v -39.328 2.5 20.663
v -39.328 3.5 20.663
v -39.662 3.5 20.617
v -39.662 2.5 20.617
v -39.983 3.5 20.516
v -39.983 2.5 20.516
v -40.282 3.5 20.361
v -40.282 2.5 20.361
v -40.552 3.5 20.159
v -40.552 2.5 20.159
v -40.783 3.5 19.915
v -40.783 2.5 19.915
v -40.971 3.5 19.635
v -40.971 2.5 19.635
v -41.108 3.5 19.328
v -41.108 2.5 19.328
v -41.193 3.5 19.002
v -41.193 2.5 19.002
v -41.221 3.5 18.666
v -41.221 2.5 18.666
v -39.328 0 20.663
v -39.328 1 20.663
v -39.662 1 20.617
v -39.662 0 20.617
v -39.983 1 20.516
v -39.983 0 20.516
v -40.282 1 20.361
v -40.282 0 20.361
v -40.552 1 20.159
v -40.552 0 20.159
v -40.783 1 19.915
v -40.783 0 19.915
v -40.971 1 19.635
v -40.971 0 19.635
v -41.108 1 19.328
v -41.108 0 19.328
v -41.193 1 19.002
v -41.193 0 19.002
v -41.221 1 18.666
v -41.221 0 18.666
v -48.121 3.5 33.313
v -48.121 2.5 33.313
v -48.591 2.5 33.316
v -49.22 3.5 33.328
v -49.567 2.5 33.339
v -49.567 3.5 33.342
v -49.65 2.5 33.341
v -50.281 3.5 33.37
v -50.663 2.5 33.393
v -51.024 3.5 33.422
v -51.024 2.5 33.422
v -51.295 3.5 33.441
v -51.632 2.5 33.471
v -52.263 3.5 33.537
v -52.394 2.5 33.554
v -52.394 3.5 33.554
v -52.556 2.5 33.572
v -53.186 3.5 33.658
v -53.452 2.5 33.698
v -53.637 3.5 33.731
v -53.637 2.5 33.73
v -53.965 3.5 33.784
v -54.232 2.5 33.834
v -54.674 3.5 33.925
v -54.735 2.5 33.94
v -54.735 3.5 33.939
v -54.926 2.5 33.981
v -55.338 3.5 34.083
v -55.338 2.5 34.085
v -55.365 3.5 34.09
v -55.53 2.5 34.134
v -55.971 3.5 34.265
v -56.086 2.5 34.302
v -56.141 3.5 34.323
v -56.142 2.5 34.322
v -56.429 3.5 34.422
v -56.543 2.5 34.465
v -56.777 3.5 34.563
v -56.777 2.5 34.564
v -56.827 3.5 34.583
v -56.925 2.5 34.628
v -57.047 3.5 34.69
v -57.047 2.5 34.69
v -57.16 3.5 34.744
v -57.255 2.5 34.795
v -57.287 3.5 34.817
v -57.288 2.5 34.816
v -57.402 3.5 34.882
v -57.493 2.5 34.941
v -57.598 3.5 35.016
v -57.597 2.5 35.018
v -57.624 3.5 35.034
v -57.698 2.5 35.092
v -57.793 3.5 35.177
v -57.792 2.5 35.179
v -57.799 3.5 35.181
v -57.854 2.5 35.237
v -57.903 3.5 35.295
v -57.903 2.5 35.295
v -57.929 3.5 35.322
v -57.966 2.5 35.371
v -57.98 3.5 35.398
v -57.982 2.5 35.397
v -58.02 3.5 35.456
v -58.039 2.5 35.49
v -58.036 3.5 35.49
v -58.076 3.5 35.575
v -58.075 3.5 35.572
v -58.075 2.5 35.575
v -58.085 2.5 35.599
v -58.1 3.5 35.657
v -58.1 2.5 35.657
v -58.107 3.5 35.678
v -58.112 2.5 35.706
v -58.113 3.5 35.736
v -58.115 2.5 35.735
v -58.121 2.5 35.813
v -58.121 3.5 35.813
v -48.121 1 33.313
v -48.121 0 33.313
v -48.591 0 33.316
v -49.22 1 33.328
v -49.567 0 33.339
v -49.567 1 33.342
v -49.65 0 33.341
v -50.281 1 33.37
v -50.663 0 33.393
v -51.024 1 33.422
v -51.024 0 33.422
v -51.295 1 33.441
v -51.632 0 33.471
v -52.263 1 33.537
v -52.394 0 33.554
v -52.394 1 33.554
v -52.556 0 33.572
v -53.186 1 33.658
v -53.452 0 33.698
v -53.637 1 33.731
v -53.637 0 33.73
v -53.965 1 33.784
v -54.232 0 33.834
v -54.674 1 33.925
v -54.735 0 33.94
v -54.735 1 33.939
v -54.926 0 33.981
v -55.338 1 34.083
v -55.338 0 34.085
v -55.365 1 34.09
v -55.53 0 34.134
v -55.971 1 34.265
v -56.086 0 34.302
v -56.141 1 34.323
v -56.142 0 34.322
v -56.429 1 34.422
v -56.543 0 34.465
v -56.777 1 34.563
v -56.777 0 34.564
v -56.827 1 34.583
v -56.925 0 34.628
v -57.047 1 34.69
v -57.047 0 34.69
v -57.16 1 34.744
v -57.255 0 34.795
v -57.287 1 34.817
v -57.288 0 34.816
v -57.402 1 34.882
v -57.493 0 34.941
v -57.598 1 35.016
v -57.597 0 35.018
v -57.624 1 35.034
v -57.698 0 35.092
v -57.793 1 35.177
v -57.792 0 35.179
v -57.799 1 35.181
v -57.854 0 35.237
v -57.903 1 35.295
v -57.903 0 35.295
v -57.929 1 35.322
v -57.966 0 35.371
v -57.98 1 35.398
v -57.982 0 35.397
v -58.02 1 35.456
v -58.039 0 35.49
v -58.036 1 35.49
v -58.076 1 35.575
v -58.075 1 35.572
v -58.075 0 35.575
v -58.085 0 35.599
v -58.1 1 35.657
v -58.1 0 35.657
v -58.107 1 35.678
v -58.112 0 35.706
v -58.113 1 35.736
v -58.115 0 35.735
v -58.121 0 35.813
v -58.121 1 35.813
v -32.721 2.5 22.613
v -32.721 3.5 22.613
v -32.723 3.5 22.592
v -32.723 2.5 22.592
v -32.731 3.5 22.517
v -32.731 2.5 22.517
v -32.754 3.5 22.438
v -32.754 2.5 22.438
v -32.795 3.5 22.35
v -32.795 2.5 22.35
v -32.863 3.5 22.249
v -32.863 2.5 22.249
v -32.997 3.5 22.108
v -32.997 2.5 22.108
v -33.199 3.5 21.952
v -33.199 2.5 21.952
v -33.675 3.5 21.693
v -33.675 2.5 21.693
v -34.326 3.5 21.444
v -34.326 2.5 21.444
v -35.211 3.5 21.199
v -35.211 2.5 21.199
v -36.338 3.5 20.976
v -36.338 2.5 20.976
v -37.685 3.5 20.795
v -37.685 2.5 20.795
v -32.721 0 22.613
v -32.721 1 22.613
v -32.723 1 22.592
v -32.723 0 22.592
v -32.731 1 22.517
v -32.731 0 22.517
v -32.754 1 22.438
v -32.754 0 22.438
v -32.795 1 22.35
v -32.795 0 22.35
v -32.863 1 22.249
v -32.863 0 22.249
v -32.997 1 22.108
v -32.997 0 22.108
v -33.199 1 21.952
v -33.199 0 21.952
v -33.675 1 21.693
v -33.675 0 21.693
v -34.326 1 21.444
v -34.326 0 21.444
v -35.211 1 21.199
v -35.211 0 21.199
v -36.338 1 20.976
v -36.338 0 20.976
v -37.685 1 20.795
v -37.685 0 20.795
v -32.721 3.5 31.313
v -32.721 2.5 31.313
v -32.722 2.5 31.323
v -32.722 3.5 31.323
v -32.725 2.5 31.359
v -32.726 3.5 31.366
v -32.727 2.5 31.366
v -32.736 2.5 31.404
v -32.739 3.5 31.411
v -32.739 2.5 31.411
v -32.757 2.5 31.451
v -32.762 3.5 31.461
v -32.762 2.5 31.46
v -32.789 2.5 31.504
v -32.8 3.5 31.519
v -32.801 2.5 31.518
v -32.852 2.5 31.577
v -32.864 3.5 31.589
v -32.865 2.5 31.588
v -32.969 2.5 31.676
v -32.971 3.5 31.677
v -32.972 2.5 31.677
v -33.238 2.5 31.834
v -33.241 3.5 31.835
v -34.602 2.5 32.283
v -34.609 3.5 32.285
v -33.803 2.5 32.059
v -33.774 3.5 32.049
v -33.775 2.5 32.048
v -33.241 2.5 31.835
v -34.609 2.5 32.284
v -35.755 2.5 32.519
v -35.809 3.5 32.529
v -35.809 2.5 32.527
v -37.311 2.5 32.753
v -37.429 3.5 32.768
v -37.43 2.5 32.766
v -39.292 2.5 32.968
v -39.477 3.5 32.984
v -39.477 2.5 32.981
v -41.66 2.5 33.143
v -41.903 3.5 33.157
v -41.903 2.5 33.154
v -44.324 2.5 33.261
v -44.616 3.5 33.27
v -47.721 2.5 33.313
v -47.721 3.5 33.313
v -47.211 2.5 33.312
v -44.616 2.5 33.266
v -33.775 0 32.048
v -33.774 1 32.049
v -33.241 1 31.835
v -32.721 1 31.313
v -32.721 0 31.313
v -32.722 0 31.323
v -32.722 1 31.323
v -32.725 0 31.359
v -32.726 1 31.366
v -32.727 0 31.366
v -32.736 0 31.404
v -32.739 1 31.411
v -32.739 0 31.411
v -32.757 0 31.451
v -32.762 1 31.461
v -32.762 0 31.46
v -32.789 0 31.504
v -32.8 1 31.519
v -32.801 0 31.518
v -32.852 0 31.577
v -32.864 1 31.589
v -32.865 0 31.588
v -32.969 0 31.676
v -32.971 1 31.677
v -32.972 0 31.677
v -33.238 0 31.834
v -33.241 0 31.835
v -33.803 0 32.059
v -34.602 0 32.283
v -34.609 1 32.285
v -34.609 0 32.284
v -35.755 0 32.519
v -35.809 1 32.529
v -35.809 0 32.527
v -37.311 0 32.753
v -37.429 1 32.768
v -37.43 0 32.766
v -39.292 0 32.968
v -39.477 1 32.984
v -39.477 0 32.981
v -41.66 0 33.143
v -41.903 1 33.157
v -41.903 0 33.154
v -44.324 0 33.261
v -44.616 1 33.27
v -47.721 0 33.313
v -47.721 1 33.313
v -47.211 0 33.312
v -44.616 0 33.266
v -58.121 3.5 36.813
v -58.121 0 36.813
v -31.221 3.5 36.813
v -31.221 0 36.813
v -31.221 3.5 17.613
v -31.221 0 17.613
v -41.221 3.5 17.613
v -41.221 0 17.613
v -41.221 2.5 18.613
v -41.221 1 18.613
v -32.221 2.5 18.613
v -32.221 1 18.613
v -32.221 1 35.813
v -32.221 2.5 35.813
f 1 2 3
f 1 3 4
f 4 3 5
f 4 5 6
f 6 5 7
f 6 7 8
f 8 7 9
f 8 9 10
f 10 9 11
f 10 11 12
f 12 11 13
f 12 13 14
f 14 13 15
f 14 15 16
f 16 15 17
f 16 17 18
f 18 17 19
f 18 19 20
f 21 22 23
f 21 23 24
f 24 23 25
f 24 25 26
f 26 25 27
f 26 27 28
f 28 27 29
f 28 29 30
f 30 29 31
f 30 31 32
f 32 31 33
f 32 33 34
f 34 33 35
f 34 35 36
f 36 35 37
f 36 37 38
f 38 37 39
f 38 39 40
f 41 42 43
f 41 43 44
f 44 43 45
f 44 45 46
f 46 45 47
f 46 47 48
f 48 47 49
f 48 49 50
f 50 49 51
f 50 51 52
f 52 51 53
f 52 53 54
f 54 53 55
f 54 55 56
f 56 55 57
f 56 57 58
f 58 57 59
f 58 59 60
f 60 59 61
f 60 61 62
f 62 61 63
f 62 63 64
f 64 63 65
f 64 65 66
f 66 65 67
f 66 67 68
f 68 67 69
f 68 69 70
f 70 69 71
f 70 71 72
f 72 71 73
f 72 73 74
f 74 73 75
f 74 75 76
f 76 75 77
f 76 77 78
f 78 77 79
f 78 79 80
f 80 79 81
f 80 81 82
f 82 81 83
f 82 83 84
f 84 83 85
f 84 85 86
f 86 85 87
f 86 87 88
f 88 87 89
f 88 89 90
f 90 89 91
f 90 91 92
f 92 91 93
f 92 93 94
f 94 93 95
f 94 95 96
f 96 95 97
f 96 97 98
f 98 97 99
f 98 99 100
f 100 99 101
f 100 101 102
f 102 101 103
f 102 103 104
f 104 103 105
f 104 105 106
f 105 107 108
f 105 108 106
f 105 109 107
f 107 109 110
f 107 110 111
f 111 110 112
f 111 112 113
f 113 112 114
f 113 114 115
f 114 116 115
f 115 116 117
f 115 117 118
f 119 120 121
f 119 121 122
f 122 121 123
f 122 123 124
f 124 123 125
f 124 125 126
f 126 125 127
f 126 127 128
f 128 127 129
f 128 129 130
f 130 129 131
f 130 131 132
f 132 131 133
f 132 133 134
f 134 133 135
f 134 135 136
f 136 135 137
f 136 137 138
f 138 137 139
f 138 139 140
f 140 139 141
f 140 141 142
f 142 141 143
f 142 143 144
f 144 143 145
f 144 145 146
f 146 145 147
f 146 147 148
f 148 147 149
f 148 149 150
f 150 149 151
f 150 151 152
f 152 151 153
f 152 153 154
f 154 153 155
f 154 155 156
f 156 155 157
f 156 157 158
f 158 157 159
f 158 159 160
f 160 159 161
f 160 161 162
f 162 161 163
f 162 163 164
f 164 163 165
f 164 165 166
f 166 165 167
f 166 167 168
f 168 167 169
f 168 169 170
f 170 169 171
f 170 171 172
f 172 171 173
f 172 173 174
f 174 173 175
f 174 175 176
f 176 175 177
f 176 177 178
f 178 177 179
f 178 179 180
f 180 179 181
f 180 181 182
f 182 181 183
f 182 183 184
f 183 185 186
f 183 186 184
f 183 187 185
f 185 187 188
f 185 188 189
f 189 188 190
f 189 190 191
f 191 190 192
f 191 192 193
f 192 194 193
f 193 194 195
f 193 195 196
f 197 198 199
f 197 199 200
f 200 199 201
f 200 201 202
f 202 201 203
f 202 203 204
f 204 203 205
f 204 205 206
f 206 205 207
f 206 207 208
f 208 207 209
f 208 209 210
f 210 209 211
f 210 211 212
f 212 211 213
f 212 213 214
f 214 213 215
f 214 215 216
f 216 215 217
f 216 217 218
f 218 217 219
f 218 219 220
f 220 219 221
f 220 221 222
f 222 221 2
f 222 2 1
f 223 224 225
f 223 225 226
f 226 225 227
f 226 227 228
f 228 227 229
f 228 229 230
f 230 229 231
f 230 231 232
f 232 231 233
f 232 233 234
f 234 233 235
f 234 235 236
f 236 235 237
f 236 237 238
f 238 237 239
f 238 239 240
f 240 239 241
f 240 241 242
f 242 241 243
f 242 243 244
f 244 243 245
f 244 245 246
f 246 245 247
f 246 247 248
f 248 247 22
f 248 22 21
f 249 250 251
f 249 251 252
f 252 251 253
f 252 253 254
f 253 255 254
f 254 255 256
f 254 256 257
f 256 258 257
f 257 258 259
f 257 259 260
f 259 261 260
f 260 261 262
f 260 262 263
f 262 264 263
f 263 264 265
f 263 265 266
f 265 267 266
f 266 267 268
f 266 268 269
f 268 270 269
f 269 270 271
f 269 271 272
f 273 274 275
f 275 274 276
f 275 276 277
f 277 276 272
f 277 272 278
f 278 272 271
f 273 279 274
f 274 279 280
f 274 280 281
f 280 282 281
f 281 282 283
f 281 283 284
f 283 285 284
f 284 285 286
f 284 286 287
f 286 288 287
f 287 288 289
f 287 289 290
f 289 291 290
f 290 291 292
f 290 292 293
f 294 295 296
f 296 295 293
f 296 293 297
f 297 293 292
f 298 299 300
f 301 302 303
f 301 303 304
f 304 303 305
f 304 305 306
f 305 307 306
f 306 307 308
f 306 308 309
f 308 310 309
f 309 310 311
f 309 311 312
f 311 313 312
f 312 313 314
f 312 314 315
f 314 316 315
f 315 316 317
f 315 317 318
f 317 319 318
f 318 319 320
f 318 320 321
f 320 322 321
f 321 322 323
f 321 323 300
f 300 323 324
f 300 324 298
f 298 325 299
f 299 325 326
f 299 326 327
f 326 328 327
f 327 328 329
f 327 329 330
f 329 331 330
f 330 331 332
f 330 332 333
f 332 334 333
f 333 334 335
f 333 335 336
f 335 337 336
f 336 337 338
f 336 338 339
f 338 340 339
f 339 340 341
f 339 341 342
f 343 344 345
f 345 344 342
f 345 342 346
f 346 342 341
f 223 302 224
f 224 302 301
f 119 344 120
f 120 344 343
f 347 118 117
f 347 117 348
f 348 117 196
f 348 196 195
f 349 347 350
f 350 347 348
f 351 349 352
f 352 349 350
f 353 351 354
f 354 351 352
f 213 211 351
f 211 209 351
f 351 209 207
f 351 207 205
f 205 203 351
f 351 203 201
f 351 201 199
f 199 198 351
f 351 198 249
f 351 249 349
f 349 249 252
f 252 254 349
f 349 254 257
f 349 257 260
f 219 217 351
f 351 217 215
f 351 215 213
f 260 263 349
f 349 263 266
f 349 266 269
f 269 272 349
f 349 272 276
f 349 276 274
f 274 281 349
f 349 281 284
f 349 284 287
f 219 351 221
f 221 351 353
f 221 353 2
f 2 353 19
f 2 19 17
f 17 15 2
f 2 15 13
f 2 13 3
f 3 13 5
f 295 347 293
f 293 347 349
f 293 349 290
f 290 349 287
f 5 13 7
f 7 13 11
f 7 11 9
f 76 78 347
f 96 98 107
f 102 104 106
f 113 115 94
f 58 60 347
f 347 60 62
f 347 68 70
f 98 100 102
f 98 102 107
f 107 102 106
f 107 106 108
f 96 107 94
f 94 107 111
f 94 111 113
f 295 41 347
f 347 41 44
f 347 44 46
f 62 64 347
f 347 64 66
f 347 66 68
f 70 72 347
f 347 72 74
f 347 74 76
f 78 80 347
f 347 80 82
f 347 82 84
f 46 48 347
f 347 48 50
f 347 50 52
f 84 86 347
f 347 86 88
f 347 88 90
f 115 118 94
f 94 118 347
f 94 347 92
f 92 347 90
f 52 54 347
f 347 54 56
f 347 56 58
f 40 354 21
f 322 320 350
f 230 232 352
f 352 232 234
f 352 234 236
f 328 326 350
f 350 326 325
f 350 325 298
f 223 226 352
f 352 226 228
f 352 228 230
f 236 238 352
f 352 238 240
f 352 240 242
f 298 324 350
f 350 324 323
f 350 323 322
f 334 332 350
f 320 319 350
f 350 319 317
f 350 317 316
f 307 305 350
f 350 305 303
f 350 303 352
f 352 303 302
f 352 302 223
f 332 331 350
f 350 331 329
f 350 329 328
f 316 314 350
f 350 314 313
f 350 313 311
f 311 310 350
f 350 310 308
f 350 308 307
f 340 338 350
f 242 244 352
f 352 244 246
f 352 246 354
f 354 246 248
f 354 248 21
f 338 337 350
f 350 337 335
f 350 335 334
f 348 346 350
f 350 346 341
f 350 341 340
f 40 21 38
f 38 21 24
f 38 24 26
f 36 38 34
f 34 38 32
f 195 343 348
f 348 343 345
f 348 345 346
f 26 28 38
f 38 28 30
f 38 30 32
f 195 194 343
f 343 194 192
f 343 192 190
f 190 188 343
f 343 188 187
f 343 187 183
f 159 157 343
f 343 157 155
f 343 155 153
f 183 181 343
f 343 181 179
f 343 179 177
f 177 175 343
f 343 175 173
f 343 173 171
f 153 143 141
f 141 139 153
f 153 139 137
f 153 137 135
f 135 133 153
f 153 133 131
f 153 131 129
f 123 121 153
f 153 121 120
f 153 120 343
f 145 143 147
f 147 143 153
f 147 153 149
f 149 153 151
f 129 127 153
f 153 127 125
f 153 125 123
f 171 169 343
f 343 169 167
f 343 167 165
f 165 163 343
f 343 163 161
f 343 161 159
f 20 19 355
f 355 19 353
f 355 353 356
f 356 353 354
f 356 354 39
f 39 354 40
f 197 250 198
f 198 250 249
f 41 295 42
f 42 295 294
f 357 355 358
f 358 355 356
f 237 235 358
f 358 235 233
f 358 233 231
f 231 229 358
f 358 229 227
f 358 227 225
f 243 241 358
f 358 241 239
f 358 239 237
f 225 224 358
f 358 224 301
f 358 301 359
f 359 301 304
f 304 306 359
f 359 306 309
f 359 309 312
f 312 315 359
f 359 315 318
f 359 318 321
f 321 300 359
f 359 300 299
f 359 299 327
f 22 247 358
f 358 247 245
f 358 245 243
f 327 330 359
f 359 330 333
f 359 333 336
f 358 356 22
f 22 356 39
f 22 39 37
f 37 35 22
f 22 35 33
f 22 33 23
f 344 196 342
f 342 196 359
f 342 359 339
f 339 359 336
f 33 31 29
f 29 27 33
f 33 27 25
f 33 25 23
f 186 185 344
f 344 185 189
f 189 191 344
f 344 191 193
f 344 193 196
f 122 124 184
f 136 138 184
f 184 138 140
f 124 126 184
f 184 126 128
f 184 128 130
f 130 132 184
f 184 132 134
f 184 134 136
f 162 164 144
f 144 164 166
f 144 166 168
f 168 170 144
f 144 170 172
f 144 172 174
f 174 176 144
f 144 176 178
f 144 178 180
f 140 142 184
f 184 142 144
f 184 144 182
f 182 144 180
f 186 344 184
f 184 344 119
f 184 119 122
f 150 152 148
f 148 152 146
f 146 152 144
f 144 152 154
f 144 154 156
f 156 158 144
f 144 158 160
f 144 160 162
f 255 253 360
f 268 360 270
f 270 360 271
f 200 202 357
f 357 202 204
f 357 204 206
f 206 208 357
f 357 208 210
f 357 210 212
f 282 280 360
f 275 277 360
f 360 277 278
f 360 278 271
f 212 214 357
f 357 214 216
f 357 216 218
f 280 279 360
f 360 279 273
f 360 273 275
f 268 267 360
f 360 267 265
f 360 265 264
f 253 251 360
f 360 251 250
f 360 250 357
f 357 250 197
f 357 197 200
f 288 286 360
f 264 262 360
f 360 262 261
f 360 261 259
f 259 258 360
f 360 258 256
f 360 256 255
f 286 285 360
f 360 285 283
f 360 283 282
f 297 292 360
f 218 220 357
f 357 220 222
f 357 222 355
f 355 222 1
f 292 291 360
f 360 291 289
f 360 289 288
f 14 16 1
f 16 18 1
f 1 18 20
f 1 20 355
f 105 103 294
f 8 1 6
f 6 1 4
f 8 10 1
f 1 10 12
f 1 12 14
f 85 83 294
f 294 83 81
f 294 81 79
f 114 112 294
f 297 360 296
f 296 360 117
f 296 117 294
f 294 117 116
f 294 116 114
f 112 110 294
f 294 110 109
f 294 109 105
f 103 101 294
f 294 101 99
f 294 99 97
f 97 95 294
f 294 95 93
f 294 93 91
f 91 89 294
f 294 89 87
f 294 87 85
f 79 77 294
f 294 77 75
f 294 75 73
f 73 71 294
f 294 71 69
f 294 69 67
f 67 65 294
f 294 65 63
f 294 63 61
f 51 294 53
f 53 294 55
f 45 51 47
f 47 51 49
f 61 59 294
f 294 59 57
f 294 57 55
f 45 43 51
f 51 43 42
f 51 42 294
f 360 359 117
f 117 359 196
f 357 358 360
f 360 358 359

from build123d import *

# Parameters (mm, degrees)
SKETCH1_W           = 26.9
SKETCH1_H           = 19.2
BOSS_EXTRUDE1_DEPTH = 3.5
CUT_EXTRUDE3_DEPTH  = 3.5
SKETCH4_W           = 17.2
SKETCH4_H           = 1.5
CUT_EXTRUDE4_DEPTH  = 25.9
FILLET1_DEPTH       = 1
FILLET2_START       = 2.5
FILLET2_DEPTH       = 1
FILLET3_SIZE        = 8.5
FILLET3_SIZE_2      = 2
FILLET4_START       = 2.5
FILLET4_DEPTH       = 1
FILLET6_SIZE        = 10
FILLET6_SIZE_2      = 2.5
FILLET7_SIZE        = 2.5
FILLET7_SIZE_2      = 10
FILLET8_R           = 2
FILLET9_R           = 2


with BuildPart() as part:
    # Sketch1 → Boss-Extrude1 (new body)
    with BuildSketch(Plane(origin=(0, 0, 0), x_dir=(1, 0, 0), z_dir=(0, 1, 0))):
        with Locations((-44.670982611, -27.213166741)):
            Rectangle(SKETCH1_W, SKETCH1_H)
    extrude(amount=BOSS_EXTRUDE1_DEPTH)

    # Sketch2 → Cut-Extrude3 (cut)
    with BuildSketch(Plane(origin=(0, 3.5, 0), x_dir=(1, 0, 0), z_dir=(0, 1, 0))):
        Polygon((-58.120982611, -33.313166741), (-32.720982611, -33.313166741), (-32.720982611, -20.613166741), (-41.220982611, -20.613166741), (-41.220982611, -17.613166741), (-58.120982611, -17.613166741), align=None)
    extrude(amount=-CUT_EXTRUDE3_DEPTH, mode=Mode.SUBTRACT)

    # Sketch4 → Cut-Extrude4 (cut)
    with BuildSketch(Plane.ZY.offset(58.120982611)):
        with Locations((27.213166741, 1.75)):
            Rectangle(SKETCH4_W, SKETCH4_H)
    extrude(amount=-CUT_EXTRUDE4_DEPTH, mode=Mode.SUBTRACT)

    # Fillet1: read off the stored shape, not the designer's step
    # Fillet1 outline → Fillet1 (add)
    with BuildSketch(Plane(origin=(0, 0, 0), x_dir=(1, 0, 0), z_dir=(0, 1, 0))):
        with BuildLine():
            add(Edge.make_bspline(
                [(-47.720982611, -33.313166741), (-32.720982611, -33.313166741), (-32.720982611, -31.313166741)],
                knots=[0, 0, 0, 1, 1, 1], degree=2, weights=[1, 0.707106781, 1]))
            Line((-47.720982611, -33.313166741), (-32.720982611, -33.313166741))
            Line((-32.720982611, -33.313166741), (-32.720982611, -31.313166741))
        make_face()
    extrude(amount=FILLET1_DEPTH)

    # Fillet2: read off the stored shape, not the designer's step
    # Fillet2 outline → Fillet2 (add)
    with BuildSketch(Plane(origin=(0, 0, 0), x_dir=(1, 0, 0), z_dir=(0, 1, 0)).offset(FILLET2_START)):
        with BuildLine():
            add(Edge.make_bspline(
                [(-47.720982611, -33.313166741), (-32.720982611, -33.313166741), (-32.720982611, -31.313166741)],
                knots=[0, 0, 0, 1, 1, 1], degree=2, weights=[1, 0.707106781, 1]))
            Line((-47.720982611, -33.313166741), (-32.720982611, -33.313166741))
            Line((-32.720982611, -33.313166741), (-32.720982611, -31.313166741))
        make_face()
    extrude(amount=FILLET2_DEPTH)

    # Fillet3
    # a fillet whose section is not a circle: 8.5, 2 mm, written as the material it adds along each edge
    with BuildSketch(Plane(origin=(-32.720982611, 1, 20.613166741), x_dir=(-1, 0, 0), z_dir=(0, -1, 0))) as fillet3_piece_1:
        with BuildLine():
            Bezier((FILLET3_SIZE, 0), (0, 0), (0, -FILLET3_SIZE_2), weights=[1, 0.707106781, 1])
            Line((0, -FILLET3_SIZE_2), (0, 0))
            Line((0, 0), (FILLET3_SIZE, 0))
        make_face()
    extrude(amount=1)

    # Fillet4: read off the stored shape, not the designer's step
    # Fillet4 outline → Fillet4 (add)
    with BuildSketch(Plane(origin=(0, 0, 0), x_dir=(1, 0, 0), z_dir=(0, 1, 0)).offset(FILLET4_START)):
        with BuildLine():
            Line((-32.720982611, -20.613166741), (-41.220982611, -20.613166741))
            add(Edge.make_bspline(
                [(-41.220982611, -20.613166741), (-32.720982611, -20.613166741), (-32.720982611, -22.613166741)],
                knots=[0, 0, 0, 1, 1, 1], degree=2, weights=[1, 0.707106781, 1]))
            Line((-32.720982611, -22.613166741), (-32.720982611, -20.613166741))
        make_face()
    extrude(amount=FILLET4_DEPTH)

    # Fillet6
    # a fillet whose section is not a circle: 10, 2.5 mm, written as the material it takes off along each edge
    with BuildSketch(Plane(origin=(-58.120982611, 26, 33.313166741), x_dir=(1, 0, 0), z_dir=(0, -1, 0))) as fillet6_piece_1_section:
        with BuildLine():
            Bezier((FILLET6_SIZE, 0), (0, 0), (0, FILLET6_SIZE_2), weights=[1, 0.707106781, 1])
            Line((0, FILLET6_SIZE_2), (0, 0))
            Line((0, 0), (FILLET6_SIZE, 0))
        make_face()
    fillet6_piece_1 = extrude(amount=51, mode=Mode.PRIVATE)
    fillet6_piece_1 = split(fillet6_piece_1, bisect_by=Plane(origin=(-58.120982611, 2.5, 33.313166741), z_dir=(0, -1, 0)), keep=Keep.TOP, mode=Mode.PRIVATE)
    add(fillet6_piece_1, mode=Mode.SUBTRACT)

    # Fillet7
    # a fillet whose section is not a circle: 10, 2.5 mm, written as the material it takes off along each edge
    with BuildSketch(Plane(origin=(-58.120982611, 28.5, 33.313166741), x_dir=(0, 0, 1), z_dir=(0, -1, 0))) as fillet7_piece_1:
        with BuildLine():
            Bezier((FILLET7_SIZE, 0), (0, 0), (0, -FILLET7_SIZE_2), weights=[1, 0.707106781, 1])
            Line((0, -FILLET7_SIZE_2), (0, 0))
            Line((0, 0), (FILLET7_SIZE, 0))
        make_face()
    extrude(amount=51, mode=Mode.SUBTRACT)

    # Fillet8
    fillet8_edges = [part.edges().sort_by_distance(p)[0] for p in [
        (-41.220982611, 0.5, 20.613166741),
    ]]
    fillet(fillet8_edges, radius=FILLET8_R)

    # Fillet9
    fillet9_edges = [part.edges().sort_by_distance(p)[0] for p in [
        (-41.220982611, 3, 20.613166741),
    ]]
    fillet(fillet9_edges, radius=FILLET9_R)


solid = part.part
